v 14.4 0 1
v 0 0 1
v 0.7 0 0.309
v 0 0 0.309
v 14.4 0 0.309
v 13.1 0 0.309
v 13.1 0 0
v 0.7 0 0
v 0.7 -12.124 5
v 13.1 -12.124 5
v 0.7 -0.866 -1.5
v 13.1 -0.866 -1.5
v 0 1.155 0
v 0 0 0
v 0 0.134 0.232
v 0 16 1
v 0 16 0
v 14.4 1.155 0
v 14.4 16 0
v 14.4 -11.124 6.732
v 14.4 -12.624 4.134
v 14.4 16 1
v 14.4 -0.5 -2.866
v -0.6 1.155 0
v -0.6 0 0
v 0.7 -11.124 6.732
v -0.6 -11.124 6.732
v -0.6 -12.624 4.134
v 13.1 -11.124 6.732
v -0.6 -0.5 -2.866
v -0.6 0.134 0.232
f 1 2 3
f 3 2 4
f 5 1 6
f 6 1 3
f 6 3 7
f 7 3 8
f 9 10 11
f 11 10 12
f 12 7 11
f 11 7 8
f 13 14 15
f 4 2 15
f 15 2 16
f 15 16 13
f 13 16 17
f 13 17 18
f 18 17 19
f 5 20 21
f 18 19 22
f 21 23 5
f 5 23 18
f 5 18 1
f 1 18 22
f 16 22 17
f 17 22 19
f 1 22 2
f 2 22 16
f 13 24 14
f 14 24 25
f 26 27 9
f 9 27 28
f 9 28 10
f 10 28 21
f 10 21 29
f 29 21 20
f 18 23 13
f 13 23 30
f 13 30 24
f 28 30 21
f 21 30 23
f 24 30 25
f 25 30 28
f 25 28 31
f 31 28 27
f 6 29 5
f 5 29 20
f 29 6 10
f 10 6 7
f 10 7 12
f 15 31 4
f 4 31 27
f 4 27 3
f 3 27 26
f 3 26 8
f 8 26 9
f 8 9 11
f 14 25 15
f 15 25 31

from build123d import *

# Parameters (mm, degrees)
SKIZZE1_W                       = 14.4
SKIZZE1_H                       = 16
AUFSATZ_LINEAR_AUSTRAGEN1_DEPTH = 1
AUFSATZ_LINEAR_AUSTRAGEN4_DEPTH = 15
SKIZZE9_W                       = 1.3
SKIZZE9_H                       = 13
AUFSATZ_LINEAR_AUSTRAGEN5_DEPTH = 2


with BuildPart() as part:
    # Skizze1 → Aufsatz-Linear austragen1 (new body)
    with BuildSketch(Plane.XY):
        with Locations((7.2, 8)):
            Rectangle(SKIZZE1_W, SKIZZE1_H)
    extrude(amount=AUFSATZ_LINEAR_AUSTRAGEN1_DEPTH)

    # Skizze4 → Aufsatz-Linear austragen4 (add)
    with BuildSketch(Plane(origin=(14.4, 0, 0), x_dir=(0, 0, -1), z_dir=(1, 0, 0))):
        Polygon((0, 1.154700538), (0, 0), (1.5, -0.866025404), (-5, -12.124355653), (-4.133974596, -12.624355653), (2.866025404, -0.5), align=None)
    extrude(amount=-AUFSATZ_LINEAR_AUSTRAGEN4_DEPTH)

    # Skizze9 → Aufsatz-Linear austragen5 (add)
    with BuildSketch(Plane(origin=(0, -0.866025404, -1.5), x_dir=(1, 0, 0), z_dir=(0, 0.49999999999999484, 0.8660254037844418))):
        with Locations((13.75, -6.5)):
            Rectangle(SKIZZE9_W, SKIZZE9_H)
        with Locations((0.05, -6.5)):
            Rectangle(SKIZZE9_W, SKIZZE9_H)
    extrude(amount=AUFSATZ_LINEAR_AUSTRAGEN5_DEPTH)


solid = part.part
